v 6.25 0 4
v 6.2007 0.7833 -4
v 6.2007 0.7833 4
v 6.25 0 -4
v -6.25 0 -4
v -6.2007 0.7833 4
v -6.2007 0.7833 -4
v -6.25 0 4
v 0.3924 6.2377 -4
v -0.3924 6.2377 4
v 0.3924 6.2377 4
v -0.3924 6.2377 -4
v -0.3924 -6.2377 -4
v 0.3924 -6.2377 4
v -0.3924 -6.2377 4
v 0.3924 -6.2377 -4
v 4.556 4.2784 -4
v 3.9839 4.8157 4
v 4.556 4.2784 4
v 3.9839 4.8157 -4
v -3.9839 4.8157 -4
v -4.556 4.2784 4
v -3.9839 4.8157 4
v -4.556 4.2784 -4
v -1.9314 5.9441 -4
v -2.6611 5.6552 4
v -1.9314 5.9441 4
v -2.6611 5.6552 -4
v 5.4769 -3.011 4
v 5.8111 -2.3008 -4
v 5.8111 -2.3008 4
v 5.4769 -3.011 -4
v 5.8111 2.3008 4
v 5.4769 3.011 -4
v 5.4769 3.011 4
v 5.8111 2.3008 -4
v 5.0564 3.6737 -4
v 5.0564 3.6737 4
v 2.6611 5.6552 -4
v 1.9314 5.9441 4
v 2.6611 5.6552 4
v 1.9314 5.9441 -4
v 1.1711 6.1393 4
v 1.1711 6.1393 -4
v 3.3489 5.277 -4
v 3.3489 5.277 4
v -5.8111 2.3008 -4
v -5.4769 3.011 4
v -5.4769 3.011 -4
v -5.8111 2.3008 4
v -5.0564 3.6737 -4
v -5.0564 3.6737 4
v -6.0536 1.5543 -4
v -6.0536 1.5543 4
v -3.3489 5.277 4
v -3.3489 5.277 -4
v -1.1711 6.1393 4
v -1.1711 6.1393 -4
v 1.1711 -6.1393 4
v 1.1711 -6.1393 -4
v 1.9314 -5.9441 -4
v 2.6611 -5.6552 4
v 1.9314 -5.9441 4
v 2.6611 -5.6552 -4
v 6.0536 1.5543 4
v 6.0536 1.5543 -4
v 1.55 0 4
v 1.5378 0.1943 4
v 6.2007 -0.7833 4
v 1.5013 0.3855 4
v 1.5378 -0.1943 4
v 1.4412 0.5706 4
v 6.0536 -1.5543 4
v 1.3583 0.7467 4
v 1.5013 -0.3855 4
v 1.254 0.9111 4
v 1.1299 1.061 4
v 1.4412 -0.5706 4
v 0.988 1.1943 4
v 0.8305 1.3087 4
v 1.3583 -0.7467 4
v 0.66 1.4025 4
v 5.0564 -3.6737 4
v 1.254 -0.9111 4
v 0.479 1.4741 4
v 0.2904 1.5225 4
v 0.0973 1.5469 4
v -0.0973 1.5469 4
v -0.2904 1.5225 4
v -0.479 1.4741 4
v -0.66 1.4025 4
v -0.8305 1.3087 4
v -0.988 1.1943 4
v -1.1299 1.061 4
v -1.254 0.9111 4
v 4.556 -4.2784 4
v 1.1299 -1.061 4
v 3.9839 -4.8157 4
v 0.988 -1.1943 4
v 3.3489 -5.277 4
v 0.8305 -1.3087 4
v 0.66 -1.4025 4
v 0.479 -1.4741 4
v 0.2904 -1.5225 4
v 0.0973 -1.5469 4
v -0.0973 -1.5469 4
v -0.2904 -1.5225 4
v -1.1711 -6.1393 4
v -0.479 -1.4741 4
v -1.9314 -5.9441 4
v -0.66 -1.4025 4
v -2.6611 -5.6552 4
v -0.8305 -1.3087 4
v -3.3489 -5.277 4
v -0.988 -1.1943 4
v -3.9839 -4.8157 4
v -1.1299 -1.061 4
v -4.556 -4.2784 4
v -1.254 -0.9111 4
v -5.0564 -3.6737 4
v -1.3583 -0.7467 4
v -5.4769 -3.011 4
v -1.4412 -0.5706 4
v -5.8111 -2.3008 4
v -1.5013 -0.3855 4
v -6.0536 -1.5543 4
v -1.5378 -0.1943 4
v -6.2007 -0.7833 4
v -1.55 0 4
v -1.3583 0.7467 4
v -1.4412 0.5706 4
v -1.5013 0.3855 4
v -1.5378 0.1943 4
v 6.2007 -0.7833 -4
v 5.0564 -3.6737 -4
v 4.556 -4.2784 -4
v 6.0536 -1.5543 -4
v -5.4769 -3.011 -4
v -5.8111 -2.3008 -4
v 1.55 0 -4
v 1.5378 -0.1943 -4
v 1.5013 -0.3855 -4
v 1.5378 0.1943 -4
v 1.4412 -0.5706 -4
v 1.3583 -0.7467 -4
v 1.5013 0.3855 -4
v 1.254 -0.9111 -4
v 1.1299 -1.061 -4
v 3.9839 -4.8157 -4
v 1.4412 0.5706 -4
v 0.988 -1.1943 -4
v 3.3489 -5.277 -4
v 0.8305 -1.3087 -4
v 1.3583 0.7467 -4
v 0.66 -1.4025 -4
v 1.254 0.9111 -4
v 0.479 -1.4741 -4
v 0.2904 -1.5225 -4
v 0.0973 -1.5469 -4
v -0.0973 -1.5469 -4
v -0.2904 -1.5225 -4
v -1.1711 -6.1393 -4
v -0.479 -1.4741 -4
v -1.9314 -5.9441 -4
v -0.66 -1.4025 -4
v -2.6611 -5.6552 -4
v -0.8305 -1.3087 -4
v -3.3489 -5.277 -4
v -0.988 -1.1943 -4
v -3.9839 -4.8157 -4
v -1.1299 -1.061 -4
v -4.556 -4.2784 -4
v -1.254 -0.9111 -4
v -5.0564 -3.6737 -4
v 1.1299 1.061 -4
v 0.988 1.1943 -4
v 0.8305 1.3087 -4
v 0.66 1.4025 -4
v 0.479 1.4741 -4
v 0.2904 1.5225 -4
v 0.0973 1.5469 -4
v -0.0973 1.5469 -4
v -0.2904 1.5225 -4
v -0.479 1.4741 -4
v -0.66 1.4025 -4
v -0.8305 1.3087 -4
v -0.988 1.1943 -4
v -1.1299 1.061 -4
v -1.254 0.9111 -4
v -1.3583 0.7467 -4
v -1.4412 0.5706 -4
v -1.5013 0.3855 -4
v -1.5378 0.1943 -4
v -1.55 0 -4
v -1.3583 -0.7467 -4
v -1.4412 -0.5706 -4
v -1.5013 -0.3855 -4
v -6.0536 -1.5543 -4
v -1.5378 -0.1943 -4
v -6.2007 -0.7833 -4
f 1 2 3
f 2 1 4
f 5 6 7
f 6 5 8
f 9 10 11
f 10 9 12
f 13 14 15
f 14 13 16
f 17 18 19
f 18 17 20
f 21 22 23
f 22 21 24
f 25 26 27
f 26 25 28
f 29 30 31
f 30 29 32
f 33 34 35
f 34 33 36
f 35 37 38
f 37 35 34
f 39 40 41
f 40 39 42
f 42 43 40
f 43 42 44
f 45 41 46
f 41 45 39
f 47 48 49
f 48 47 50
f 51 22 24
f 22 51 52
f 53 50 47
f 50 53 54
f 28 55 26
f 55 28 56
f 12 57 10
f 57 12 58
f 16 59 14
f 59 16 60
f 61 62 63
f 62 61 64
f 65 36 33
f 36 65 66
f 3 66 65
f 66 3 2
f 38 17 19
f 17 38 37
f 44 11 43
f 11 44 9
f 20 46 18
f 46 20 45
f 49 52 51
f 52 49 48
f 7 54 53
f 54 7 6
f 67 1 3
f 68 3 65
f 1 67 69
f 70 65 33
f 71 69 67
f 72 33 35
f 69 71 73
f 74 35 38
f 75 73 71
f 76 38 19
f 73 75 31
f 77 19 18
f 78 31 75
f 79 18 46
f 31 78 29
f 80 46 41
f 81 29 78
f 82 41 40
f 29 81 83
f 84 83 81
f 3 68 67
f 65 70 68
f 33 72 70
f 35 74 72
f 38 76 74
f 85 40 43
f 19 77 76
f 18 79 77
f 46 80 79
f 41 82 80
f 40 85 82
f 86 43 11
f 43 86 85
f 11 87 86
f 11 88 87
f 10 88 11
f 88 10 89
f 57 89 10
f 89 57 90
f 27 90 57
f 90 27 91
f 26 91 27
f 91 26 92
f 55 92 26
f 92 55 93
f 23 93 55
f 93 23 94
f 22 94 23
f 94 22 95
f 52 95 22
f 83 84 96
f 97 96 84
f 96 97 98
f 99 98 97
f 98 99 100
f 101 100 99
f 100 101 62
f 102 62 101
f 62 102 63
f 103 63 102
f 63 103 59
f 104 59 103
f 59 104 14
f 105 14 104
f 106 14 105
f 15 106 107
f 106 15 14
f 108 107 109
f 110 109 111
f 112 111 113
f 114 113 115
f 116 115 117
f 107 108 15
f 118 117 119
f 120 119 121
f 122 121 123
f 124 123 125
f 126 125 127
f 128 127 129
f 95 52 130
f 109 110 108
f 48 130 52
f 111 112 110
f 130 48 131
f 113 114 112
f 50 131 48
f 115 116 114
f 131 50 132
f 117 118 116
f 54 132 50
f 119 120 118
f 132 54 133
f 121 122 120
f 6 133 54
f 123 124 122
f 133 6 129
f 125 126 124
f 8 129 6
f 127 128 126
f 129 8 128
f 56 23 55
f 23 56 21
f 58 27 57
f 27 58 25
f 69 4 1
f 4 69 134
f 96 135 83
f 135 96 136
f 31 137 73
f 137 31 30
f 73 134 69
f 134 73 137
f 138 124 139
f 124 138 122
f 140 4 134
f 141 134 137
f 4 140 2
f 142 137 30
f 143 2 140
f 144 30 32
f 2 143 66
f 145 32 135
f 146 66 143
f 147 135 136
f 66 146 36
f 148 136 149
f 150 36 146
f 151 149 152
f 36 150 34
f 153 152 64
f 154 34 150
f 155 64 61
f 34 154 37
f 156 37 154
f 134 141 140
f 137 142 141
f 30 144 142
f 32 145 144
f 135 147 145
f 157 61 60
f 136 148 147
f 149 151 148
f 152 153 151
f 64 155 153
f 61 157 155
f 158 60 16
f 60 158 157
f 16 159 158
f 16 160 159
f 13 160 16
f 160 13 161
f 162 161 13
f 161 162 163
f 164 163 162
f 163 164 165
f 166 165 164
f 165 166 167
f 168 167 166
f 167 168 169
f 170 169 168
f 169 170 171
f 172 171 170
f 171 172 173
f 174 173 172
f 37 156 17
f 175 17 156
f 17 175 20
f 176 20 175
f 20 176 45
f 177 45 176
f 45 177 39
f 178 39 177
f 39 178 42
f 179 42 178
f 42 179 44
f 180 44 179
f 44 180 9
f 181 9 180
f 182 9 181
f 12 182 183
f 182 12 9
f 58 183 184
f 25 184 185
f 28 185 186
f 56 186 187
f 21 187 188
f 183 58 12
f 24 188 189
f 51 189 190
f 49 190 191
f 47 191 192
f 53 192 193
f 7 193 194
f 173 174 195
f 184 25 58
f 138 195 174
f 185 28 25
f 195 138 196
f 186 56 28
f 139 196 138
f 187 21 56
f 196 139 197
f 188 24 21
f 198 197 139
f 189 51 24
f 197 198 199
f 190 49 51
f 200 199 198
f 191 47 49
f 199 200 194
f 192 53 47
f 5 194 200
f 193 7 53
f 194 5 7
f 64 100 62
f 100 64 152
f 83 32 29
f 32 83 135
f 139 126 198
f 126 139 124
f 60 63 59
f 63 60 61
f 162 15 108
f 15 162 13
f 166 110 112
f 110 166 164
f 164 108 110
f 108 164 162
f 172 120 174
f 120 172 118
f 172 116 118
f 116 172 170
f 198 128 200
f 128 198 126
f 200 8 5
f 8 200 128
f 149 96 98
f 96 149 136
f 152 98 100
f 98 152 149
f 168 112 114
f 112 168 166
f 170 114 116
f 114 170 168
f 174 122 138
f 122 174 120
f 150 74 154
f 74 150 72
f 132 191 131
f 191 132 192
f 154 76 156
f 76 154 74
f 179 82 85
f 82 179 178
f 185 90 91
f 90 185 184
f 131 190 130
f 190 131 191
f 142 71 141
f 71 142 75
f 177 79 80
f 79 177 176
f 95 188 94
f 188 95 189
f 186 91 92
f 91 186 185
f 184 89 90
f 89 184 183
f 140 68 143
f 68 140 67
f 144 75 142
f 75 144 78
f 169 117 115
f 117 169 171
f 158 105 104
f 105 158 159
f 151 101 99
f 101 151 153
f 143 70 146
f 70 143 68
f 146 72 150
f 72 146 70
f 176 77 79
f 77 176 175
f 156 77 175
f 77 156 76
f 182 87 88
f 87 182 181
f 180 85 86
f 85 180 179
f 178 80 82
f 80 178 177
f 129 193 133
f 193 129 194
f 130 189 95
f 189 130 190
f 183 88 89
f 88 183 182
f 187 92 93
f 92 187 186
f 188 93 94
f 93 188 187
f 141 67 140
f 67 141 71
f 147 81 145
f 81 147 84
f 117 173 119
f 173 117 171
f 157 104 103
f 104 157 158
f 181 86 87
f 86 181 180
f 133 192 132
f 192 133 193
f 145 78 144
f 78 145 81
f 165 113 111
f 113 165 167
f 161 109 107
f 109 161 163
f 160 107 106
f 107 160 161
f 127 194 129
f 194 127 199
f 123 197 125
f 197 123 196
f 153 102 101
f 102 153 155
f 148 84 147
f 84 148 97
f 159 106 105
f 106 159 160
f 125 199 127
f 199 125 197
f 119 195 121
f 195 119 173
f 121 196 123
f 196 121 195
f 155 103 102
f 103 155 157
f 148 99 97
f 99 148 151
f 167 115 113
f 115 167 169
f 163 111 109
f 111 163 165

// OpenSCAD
$fn = 50;


difference() {
	union() {
		translate(v = [0, 0, -4.0000000000]) {
			cylinder(h = 8, r = 6.2500000000);
		}
	}
	union() {
		translate(v = [0, 0, -100.0000000000]) {
			cylinder(h = 200, r = 1.5500000000);
		}
	}
}
